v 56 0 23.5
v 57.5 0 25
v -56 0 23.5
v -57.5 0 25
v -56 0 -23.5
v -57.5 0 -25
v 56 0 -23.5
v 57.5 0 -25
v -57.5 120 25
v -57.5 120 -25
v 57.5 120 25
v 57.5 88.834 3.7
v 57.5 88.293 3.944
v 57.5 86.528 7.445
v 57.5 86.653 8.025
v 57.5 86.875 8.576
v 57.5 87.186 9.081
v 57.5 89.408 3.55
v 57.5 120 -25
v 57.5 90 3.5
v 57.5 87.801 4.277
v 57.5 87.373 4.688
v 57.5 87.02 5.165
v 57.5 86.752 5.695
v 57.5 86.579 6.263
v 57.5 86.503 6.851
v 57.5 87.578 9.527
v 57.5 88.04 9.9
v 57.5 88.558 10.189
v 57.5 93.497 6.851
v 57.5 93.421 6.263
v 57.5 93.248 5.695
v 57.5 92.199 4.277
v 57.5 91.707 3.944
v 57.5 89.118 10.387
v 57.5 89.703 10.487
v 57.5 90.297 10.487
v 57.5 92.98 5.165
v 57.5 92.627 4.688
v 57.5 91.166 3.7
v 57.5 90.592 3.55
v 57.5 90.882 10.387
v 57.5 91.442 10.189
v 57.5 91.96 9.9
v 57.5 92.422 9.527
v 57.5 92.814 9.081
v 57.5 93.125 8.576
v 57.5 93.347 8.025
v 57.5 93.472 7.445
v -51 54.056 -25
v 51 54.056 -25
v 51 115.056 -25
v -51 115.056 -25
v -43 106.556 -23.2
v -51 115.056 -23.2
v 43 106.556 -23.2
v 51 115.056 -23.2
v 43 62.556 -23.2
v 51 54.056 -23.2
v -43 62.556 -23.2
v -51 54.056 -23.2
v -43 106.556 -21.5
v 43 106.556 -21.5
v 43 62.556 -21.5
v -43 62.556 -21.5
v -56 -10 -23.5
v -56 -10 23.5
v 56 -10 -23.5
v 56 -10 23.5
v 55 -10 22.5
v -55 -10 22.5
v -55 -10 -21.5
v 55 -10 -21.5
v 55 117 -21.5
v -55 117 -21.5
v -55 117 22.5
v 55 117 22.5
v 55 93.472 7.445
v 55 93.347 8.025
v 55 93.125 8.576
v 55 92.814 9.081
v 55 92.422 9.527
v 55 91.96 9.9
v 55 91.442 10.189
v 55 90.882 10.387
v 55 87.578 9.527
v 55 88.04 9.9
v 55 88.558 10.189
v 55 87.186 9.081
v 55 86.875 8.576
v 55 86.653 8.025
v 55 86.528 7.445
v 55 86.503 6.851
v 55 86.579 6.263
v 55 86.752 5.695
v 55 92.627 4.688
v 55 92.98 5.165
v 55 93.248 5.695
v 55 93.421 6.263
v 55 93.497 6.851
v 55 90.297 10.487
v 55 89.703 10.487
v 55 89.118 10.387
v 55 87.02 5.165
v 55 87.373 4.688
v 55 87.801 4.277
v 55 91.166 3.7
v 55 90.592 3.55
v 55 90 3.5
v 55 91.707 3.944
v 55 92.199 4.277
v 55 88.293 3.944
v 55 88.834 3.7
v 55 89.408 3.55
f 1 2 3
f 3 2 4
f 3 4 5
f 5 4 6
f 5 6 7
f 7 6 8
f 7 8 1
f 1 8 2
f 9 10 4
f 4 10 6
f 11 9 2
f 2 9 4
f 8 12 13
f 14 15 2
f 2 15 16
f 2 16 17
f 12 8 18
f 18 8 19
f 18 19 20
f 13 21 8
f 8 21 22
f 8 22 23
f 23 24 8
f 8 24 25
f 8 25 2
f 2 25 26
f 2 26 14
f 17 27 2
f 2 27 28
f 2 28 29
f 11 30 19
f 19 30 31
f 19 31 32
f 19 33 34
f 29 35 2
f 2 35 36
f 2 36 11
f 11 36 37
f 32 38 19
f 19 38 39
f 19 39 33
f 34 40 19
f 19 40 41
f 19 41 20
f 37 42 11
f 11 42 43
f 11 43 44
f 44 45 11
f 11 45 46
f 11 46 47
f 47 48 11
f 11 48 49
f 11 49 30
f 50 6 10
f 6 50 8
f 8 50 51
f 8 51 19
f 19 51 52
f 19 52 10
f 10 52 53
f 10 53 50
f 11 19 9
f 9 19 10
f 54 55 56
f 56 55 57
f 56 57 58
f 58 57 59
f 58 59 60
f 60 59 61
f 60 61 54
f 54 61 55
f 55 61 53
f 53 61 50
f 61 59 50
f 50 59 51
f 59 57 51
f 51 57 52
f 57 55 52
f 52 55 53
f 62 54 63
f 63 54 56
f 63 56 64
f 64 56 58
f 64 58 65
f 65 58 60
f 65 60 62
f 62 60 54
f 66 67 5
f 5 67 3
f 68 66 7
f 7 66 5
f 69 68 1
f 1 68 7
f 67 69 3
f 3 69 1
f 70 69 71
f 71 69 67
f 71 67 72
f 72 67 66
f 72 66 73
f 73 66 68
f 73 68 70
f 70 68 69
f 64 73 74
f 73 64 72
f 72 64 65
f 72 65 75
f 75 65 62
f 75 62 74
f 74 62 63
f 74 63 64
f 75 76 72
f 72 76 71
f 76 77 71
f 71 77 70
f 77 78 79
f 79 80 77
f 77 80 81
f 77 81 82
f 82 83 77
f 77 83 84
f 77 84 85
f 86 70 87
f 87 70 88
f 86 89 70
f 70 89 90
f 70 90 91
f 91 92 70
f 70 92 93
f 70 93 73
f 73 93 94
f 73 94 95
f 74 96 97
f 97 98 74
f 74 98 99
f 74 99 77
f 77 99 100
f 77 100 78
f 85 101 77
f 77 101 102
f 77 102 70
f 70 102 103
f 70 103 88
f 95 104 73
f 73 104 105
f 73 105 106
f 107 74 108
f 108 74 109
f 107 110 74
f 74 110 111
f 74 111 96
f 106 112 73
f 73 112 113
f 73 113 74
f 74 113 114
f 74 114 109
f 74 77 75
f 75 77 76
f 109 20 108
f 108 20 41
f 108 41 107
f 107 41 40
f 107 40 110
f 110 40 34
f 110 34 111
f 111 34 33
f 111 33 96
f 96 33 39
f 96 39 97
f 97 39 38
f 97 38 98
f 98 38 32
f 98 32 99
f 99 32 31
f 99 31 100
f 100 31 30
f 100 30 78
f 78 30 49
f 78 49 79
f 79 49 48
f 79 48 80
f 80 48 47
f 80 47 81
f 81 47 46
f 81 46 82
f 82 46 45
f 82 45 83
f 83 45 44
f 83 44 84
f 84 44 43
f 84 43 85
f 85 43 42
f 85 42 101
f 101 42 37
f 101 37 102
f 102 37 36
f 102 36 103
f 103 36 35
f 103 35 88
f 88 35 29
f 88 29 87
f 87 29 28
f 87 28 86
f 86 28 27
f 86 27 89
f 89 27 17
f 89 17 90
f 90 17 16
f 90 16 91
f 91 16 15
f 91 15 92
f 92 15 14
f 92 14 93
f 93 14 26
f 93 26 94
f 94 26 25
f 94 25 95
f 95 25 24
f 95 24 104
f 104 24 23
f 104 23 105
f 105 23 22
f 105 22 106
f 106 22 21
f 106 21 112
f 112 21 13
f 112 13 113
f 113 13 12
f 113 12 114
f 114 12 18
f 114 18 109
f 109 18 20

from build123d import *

# Parameters (mm, degrees)
SKETCH_1_W          = 115
SKETCH_1_H          = 50
EXTRUDE_1_DEPTH     = 120
SKETCH_4_W          = 86
SKETCH_4_H          = 44
CUT_EXTRUDE_3_DEPTH = 28
SKETCH_6_W          = 102
SKETCH_6_H          = 61
CUT_EXTRUDE_4_DEPTH = 1.8
SKETCH_8_W          = 112
SKETCH_8_H          = 47
EXTRUDE_3_DEPTH     = 10
SKETCH_10_W         = 110
SKETCH_10_H         = 44
CUT_EXTRUDE_5_DEPTH = 127
SKETCH_11_R         = 3.5
CUT_EXTRUDE_6_DEPTH = 10


with BuildPart() as part:
    # 草图1 → 凸台-拉伸1 (new body)
    with BuildSketch(Plane(origin=(0, 0, 0), x_dir=(1, 0, 0), z_dir=(0, 1, 0))):
        Rectangle(SKETCH_1_W, SKETCH_1_H)
    extrude(amount=EXTRUDE_1_DEPTH)

    # 草图4 → 切除-拉伸3 (cut)
    with BuildSketch(Plane(origin=(0, 0, -25), x_dir=(-1, 0, 0), z_dir=(0, 0, -1))):
        with Locations((0, 84.556060941)):
            Rectangle(SKETCH_4_W, SKETCH_4_H)
    extrude(amount=-CUT_EXTRUDE_3_DEPTH, mode=Mode.SUBTRACT)

    # 草图6 → 切除-拉伸4 (cut)
    with BuildSketch(Plane(origin=(0, 0, -25), x_dir=(-1, 0, 0), z_dir=(0, 0, -1))):
        with Locations((0, 84.556060941)):
            Rectangle(SKETCH_6_W, SKETCH_6_H)
    extrude(amount=-CUT_EXTRUDE_4_DEPTH, mode=Mode.SUBTRACT)

    # 草图8 → 凸台-拉伸3 (add)
    with BuildSketch(Plane.XZ):
        Rectangle(SKETCH_8_W, SKETCH_8_H)
    extrude(amount=EXTRUDE_3_DEPTH)

    # 草图10 → 切除-拉伸5 (cut)
    with BuildSketch(Plane.XZ.offset(10)):
        with Locations((0, 0.5)):
            Rectangle(SKETCH_10_W, SKETCH_10_H)
    extrude(amount=-CUT_EXTRUDE_5_DEPTH, mode=Mode.SUBTRACT)

    # 草图11 → 切除-拉伸6 (cut)
    with BuildSketch(Plane(origin=(57.5, 0, 0), x_dir=(0, 0, -1), z_dir=(1, 0, 0))):
        with Locations((-7, 90)):
            Circle(SKETCH_11_R)
    extrude(amount=-CUT_EXTRUDE_6_DEPTH, mode=Mode.SUBTRACT)


solid = part.part
